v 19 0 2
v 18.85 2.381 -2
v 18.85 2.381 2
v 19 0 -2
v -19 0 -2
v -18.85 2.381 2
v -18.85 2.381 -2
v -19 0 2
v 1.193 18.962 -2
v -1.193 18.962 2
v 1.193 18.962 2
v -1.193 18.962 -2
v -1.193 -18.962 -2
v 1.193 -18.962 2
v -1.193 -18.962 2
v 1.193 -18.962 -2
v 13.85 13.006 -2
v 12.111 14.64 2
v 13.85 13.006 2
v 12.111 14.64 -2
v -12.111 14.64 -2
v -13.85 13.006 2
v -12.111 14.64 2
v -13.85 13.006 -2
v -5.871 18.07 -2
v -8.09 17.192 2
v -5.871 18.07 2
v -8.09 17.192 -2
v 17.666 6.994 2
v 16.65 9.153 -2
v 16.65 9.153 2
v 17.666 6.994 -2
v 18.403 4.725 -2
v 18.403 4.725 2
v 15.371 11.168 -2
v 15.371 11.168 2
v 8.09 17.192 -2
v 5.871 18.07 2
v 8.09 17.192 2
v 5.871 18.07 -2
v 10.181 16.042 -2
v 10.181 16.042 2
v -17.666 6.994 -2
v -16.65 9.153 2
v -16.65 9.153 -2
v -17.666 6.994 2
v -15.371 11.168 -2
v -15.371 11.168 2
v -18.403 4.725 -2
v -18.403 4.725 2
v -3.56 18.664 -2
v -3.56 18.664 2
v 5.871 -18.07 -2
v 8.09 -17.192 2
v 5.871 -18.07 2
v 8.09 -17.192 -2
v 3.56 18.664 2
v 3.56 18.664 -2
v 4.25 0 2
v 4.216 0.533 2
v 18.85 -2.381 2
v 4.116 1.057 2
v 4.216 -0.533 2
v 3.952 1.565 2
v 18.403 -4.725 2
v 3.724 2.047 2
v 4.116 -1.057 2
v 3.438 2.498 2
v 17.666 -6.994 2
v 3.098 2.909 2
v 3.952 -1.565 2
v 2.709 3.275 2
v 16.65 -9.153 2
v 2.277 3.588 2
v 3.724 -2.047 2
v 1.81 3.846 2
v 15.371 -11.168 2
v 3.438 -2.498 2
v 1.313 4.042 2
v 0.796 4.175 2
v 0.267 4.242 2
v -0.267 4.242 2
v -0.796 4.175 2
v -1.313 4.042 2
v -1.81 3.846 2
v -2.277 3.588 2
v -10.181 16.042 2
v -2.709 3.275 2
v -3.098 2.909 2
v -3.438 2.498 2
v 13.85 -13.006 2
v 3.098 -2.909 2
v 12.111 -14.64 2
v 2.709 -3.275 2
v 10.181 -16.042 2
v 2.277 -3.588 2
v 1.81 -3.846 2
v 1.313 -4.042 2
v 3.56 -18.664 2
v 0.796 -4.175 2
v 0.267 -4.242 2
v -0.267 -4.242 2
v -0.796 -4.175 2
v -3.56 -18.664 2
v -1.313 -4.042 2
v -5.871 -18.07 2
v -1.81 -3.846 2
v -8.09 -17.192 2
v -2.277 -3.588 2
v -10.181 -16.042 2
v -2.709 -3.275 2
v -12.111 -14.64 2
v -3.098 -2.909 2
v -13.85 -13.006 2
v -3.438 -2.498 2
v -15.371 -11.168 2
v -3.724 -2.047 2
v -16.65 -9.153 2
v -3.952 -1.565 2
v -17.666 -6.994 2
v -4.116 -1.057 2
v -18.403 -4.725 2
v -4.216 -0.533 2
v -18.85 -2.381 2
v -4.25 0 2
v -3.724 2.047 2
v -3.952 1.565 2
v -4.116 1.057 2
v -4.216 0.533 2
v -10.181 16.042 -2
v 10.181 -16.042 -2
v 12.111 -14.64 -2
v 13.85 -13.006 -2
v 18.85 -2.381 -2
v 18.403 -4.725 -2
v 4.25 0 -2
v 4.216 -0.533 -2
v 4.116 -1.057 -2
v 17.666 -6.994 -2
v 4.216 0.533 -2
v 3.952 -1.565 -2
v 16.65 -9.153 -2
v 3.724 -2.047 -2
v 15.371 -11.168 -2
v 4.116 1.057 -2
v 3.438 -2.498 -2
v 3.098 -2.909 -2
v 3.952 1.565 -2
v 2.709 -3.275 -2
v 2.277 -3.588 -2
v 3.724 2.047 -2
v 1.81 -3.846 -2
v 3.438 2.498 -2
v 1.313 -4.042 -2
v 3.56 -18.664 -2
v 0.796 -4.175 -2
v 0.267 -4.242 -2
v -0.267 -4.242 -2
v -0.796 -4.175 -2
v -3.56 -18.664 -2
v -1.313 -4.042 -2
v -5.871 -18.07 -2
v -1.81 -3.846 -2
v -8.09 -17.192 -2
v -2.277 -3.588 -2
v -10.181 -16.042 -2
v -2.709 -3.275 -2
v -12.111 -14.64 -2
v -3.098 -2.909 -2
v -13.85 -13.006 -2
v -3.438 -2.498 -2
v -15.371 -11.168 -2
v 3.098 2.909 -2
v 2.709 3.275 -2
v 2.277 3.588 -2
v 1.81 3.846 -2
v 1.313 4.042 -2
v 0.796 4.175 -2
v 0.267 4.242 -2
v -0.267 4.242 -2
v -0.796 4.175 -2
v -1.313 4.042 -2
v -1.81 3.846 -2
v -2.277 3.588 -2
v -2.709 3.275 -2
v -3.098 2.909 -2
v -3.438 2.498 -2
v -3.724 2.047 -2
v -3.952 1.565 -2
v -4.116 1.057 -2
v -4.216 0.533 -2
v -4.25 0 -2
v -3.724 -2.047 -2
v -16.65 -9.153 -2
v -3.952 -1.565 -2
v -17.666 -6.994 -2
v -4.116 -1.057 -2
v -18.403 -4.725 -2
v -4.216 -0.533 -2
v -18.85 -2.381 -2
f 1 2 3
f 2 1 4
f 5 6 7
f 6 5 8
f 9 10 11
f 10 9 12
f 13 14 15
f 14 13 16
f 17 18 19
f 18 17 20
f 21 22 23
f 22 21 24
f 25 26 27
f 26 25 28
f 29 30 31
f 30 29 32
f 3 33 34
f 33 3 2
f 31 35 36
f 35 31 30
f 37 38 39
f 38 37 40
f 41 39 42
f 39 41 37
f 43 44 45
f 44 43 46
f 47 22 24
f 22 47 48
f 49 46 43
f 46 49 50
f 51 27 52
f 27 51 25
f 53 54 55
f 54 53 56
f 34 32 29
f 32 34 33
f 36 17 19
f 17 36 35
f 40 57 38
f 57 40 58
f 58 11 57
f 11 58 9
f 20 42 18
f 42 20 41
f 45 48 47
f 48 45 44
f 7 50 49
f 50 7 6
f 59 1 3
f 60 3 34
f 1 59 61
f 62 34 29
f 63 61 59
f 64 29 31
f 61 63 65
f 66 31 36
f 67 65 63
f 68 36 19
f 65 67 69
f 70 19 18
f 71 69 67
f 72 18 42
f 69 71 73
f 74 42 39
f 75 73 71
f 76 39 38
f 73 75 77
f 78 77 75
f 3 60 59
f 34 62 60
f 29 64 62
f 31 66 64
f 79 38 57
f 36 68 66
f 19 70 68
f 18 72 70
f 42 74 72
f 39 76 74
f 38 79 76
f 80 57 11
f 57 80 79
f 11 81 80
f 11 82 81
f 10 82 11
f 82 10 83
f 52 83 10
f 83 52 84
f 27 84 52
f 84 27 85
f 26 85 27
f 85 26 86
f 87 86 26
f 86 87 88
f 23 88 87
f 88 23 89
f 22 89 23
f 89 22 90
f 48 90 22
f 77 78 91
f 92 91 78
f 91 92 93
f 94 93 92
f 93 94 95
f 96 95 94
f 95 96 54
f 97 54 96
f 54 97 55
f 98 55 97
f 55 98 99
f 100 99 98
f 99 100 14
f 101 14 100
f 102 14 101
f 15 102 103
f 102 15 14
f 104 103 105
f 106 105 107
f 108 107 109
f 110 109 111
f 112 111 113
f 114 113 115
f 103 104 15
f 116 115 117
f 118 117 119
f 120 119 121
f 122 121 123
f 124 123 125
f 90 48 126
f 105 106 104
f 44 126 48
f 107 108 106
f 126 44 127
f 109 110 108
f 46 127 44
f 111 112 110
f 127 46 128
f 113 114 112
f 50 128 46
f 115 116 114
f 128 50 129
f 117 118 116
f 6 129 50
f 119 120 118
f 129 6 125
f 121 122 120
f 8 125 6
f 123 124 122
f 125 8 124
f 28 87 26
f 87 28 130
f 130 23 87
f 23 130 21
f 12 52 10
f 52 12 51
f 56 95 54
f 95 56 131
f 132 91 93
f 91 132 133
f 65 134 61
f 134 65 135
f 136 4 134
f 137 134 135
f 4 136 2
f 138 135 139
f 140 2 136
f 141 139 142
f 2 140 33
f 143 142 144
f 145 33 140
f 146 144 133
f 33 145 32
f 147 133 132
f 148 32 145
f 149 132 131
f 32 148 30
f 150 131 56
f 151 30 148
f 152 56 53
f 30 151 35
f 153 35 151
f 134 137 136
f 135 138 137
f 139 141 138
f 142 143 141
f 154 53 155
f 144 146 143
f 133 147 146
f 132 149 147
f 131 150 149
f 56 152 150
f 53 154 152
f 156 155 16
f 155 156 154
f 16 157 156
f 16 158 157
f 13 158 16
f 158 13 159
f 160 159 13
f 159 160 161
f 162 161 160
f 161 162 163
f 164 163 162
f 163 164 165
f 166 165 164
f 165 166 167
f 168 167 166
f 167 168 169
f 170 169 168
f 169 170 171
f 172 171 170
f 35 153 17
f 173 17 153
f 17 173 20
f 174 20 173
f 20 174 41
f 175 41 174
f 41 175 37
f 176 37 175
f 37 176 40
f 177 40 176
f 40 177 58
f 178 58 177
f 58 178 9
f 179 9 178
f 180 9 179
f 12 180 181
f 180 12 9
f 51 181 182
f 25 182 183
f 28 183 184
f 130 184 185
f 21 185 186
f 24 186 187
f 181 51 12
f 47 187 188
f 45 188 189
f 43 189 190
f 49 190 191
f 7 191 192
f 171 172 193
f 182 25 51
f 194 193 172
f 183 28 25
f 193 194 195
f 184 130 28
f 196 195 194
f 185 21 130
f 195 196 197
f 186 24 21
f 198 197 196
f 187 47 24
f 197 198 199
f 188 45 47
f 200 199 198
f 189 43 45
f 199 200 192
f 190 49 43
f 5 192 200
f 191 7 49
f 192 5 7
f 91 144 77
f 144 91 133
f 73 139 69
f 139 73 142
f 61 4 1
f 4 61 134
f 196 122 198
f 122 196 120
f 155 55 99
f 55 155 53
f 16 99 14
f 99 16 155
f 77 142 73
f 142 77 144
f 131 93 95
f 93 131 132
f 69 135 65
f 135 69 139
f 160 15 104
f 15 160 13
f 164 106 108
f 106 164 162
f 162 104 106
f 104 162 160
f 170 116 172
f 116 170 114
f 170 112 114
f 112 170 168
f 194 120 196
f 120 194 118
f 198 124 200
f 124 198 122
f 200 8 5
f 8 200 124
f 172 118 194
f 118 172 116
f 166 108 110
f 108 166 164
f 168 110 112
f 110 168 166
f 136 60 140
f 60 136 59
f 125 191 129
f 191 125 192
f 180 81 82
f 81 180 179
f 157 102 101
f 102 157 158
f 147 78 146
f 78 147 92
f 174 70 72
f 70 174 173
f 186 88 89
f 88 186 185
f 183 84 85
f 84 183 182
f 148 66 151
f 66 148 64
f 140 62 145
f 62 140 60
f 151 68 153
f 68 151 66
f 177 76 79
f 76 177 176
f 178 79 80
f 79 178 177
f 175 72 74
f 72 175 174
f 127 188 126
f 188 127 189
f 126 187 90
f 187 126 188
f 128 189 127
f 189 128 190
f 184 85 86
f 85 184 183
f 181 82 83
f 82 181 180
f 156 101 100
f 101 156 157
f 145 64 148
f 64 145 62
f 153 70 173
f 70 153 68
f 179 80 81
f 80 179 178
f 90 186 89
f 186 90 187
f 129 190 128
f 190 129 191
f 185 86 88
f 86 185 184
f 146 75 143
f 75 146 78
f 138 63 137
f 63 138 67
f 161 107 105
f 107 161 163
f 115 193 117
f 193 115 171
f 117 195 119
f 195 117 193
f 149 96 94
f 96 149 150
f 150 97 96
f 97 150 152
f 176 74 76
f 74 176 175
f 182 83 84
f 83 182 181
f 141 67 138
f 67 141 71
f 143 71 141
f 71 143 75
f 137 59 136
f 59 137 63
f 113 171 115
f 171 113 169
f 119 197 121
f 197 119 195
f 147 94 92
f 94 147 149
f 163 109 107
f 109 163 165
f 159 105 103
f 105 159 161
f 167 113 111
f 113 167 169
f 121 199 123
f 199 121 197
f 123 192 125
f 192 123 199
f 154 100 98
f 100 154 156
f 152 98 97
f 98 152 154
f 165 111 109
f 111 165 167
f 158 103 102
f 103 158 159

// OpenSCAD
$fn = 50;


difference() {
	union() {
		translate(v = [0, 0, -2.0000000000]) {
			cylinder(h = 4, r = 19.0000000000);
		}
	}
	union() {
		translate(v = [0, 0, -100.0000000000]) {
			cylinder(h = 200, r = 4.2500000000);
		}
	}
}
